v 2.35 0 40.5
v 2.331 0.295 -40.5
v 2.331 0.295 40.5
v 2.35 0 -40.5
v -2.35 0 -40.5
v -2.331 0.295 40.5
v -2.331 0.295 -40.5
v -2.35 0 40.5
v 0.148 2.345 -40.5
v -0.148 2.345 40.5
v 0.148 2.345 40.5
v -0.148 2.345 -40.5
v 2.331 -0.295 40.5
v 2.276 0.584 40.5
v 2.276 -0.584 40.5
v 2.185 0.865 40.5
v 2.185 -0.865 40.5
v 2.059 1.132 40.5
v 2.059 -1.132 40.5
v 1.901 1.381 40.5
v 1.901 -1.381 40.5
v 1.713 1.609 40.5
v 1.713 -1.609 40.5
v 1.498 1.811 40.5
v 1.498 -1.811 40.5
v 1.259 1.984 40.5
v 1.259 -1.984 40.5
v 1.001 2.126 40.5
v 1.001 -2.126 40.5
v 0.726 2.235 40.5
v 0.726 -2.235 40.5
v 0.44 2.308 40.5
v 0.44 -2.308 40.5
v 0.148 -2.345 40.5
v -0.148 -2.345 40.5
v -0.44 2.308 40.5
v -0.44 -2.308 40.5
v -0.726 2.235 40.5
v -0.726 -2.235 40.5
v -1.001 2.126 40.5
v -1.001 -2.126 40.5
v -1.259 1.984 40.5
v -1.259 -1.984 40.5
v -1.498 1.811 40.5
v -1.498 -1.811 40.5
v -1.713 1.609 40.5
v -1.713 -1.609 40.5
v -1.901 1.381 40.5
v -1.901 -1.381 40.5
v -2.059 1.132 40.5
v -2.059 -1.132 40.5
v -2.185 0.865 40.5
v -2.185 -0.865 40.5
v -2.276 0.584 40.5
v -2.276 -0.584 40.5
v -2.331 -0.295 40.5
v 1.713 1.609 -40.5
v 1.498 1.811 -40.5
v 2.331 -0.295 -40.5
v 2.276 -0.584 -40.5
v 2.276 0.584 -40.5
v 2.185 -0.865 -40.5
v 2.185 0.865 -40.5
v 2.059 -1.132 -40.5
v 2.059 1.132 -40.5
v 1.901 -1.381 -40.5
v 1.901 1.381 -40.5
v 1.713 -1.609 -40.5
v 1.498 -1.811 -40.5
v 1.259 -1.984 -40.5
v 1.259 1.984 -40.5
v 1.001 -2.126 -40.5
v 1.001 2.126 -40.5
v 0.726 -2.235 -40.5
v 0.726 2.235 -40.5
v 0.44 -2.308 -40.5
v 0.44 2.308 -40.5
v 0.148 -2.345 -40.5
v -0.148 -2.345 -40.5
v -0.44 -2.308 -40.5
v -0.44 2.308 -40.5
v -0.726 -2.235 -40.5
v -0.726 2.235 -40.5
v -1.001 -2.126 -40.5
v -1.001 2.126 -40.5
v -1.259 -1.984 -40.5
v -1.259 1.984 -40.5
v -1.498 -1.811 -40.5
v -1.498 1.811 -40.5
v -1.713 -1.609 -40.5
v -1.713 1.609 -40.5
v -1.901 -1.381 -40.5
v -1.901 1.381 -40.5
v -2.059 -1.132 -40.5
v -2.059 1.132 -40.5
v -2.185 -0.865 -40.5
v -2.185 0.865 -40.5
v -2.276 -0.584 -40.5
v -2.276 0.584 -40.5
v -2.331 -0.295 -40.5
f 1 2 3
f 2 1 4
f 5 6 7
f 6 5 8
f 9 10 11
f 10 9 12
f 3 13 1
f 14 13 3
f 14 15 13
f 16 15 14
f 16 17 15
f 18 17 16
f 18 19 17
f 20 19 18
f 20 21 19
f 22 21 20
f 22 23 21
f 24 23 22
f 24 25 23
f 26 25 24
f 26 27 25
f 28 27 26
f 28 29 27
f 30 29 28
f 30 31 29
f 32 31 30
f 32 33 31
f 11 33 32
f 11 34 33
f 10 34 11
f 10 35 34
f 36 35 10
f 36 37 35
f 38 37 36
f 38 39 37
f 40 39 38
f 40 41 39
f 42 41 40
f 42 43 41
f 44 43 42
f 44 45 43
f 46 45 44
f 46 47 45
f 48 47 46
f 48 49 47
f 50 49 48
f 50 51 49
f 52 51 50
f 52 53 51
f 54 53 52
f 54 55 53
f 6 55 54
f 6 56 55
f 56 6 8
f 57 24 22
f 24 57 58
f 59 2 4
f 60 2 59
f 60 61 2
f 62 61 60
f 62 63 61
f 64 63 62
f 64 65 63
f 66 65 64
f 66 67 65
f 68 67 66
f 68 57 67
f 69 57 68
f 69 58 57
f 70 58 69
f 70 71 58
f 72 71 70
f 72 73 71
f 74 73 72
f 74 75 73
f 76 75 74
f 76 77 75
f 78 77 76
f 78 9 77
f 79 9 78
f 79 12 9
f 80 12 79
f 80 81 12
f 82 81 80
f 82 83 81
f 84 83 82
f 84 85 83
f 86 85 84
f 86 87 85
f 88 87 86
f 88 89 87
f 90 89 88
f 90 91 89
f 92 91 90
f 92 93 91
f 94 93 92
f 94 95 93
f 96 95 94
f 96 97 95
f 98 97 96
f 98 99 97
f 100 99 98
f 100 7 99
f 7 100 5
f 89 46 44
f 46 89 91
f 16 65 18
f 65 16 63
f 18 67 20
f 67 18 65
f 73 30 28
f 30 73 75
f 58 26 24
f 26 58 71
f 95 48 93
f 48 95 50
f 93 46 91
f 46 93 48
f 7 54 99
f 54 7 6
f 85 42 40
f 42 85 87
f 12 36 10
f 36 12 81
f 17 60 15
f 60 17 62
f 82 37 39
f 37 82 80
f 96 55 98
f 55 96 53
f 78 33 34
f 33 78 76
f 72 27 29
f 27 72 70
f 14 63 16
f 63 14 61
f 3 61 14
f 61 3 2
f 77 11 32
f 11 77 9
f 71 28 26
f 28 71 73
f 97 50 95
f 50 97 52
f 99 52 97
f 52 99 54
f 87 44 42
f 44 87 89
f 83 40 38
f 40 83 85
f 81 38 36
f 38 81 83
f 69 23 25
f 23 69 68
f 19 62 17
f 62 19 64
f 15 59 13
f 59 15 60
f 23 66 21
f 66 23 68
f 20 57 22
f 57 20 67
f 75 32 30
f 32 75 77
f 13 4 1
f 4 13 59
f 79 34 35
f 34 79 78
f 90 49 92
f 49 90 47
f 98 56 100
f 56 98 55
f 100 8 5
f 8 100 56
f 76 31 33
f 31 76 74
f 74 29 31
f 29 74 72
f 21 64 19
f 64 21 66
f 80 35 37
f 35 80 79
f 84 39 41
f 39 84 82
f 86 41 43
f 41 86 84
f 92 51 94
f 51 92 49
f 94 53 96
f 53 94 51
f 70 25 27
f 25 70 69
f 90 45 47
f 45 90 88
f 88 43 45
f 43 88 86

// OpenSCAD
$fn = 50;


difference() {
	union() {
		translate(v = [0, 0, -40.5000000000]) {
			cylinder(h = 81, r = 2.3500000000);
		}
	}
	union() {
		translate(v = [0, 0, -100.0000000000]) {
			cylinder(h = 200, r = 0);
		}
	}
}
